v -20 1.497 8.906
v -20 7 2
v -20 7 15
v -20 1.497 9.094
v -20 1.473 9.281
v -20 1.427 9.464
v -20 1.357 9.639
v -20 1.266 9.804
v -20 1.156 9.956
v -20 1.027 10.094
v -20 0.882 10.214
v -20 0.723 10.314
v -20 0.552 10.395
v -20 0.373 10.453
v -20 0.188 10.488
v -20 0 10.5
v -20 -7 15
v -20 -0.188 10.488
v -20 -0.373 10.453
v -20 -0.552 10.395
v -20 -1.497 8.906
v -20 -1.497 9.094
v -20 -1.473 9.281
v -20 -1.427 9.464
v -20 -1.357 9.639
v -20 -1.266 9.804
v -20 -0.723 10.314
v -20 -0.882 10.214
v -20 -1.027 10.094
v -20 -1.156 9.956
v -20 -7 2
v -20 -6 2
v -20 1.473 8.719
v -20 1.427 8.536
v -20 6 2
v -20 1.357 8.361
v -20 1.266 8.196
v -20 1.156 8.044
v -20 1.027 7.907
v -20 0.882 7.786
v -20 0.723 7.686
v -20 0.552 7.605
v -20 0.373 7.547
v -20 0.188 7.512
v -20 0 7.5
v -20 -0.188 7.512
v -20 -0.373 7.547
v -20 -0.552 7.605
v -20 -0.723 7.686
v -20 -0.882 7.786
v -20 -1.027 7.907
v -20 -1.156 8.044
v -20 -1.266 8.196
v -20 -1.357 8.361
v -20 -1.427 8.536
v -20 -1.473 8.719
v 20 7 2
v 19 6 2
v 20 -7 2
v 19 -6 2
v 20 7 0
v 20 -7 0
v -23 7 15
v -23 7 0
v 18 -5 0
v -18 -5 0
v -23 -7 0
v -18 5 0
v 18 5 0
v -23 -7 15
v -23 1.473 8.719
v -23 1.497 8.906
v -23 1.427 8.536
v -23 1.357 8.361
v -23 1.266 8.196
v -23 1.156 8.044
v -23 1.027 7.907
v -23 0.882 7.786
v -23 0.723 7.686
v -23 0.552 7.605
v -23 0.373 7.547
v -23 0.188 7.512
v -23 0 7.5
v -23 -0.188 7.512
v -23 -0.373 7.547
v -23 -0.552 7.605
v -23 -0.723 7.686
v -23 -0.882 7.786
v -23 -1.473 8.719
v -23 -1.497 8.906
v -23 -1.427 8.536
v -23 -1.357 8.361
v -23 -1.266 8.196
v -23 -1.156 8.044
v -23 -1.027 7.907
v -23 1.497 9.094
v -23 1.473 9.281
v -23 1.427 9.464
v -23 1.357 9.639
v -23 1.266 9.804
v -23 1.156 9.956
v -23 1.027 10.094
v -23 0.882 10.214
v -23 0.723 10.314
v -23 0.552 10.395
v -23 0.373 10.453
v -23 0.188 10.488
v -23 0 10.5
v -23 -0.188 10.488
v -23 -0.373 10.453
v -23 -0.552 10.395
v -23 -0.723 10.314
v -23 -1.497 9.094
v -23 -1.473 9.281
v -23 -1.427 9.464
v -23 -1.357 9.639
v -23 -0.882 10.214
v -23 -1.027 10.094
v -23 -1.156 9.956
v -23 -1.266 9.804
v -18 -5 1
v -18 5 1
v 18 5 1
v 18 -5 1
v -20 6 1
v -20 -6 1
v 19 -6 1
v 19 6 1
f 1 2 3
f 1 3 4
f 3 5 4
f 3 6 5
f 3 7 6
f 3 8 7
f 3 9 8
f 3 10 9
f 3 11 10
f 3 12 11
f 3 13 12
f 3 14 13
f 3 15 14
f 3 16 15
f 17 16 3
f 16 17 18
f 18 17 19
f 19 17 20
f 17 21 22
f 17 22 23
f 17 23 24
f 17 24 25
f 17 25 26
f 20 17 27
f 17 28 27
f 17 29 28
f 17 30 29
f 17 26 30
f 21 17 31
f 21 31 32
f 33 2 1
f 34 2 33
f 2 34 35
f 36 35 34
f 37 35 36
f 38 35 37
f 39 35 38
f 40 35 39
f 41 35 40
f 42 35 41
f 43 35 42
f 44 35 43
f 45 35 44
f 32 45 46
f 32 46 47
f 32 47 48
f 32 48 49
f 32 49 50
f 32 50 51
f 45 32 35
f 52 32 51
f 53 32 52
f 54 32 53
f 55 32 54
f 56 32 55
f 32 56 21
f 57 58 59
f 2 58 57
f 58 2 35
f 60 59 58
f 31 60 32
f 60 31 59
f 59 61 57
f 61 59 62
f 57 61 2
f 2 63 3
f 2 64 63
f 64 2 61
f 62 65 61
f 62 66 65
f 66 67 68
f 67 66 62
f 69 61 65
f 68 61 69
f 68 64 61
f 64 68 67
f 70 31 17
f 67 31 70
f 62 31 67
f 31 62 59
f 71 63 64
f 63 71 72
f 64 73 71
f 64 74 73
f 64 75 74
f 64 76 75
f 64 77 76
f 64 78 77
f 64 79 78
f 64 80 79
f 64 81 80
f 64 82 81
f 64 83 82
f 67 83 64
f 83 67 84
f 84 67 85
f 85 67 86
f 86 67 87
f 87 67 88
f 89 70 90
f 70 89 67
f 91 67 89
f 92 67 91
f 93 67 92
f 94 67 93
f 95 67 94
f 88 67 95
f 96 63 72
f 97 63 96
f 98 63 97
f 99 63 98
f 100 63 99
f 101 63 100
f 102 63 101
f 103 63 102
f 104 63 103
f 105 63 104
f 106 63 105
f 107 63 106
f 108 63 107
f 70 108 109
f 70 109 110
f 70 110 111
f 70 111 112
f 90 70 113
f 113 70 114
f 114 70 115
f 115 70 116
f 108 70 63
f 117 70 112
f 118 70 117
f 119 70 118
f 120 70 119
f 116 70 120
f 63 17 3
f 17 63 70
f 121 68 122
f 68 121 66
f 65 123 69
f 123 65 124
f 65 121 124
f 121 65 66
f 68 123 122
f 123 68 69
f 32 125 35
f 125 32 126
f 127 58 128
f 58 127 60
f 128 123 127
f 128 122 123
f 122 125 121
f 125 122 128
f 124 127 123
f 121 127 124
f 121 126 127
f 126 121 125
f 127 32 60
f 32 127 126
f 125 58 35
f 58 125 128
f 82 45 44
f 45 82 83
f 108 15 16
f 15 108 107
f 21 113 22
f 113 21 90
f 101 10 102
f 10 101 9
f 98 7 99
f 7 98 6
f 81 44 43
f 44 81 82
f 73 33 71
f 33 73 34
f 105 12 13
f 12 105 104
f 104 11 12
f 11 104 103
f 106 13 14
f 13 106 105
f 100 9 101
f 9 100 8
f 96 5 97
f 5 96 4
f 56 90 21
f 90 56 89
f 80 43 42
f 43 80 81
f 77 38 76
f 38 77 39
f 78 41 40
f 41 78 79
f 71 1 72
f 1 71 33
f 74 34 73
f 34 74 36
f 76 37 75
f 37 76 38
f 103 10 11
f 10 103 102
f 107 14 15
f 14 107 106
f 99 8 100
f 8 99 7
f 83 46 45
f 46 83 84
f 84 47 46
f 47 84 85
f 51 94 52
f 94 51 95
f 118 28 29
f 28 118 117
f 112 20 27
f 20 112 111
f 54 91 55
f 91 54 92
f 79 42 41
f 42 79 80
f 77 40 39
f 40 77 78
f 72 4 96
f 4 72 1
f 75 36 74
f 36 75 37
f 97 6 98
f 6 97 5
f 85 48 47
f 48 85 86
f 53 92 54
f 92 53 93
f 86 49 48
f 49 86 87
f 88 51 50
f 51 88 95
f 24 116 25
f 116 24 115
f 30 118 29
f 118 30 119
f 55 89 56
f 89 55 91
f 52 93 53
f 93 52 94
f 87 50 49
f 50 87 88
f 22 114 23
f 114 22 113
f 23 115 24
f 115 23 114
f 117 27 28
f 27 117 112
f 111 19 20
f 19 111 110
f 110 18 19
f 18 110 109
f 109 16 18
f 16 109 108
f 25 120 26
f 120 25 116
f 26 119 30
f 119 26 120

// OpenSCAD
$fn = 50;


difference() {
	union() {
		translate(v = [-20.0000000000, -7.0000000000, 0]) {
			rotate(a = [0, 0, 0]) {
				cube(size = [40, 14, 2]);
			}
		}
		translate(v = [-23.0000000000, -7.0000000000, 0]) {
			rotate(a = [0, 0, 0]) {
				cube(size = [3, 14, 15]);
			}
		}
	}
	union() {
		translate(v = [-18.0000000000, -5.0000000000, 0]) {
			rotate(a = [0, 0, 0]) {
				cube(size = [36, 10, 2]);
			}
		}
		translate(v = [-20.0000000000, -6.0000000000, 1]) {
			rotate(a = [0, 0, 0]) {
				cube(size = [39, 12, 1]);
			}
		}
		#translate(v = [-30.0000000000, 0, 9]) {
			rotate(a = [0, 90, 0]) {
				cylinder(h = 20, r = 1.5000000000);
			}
		}
	}
}
